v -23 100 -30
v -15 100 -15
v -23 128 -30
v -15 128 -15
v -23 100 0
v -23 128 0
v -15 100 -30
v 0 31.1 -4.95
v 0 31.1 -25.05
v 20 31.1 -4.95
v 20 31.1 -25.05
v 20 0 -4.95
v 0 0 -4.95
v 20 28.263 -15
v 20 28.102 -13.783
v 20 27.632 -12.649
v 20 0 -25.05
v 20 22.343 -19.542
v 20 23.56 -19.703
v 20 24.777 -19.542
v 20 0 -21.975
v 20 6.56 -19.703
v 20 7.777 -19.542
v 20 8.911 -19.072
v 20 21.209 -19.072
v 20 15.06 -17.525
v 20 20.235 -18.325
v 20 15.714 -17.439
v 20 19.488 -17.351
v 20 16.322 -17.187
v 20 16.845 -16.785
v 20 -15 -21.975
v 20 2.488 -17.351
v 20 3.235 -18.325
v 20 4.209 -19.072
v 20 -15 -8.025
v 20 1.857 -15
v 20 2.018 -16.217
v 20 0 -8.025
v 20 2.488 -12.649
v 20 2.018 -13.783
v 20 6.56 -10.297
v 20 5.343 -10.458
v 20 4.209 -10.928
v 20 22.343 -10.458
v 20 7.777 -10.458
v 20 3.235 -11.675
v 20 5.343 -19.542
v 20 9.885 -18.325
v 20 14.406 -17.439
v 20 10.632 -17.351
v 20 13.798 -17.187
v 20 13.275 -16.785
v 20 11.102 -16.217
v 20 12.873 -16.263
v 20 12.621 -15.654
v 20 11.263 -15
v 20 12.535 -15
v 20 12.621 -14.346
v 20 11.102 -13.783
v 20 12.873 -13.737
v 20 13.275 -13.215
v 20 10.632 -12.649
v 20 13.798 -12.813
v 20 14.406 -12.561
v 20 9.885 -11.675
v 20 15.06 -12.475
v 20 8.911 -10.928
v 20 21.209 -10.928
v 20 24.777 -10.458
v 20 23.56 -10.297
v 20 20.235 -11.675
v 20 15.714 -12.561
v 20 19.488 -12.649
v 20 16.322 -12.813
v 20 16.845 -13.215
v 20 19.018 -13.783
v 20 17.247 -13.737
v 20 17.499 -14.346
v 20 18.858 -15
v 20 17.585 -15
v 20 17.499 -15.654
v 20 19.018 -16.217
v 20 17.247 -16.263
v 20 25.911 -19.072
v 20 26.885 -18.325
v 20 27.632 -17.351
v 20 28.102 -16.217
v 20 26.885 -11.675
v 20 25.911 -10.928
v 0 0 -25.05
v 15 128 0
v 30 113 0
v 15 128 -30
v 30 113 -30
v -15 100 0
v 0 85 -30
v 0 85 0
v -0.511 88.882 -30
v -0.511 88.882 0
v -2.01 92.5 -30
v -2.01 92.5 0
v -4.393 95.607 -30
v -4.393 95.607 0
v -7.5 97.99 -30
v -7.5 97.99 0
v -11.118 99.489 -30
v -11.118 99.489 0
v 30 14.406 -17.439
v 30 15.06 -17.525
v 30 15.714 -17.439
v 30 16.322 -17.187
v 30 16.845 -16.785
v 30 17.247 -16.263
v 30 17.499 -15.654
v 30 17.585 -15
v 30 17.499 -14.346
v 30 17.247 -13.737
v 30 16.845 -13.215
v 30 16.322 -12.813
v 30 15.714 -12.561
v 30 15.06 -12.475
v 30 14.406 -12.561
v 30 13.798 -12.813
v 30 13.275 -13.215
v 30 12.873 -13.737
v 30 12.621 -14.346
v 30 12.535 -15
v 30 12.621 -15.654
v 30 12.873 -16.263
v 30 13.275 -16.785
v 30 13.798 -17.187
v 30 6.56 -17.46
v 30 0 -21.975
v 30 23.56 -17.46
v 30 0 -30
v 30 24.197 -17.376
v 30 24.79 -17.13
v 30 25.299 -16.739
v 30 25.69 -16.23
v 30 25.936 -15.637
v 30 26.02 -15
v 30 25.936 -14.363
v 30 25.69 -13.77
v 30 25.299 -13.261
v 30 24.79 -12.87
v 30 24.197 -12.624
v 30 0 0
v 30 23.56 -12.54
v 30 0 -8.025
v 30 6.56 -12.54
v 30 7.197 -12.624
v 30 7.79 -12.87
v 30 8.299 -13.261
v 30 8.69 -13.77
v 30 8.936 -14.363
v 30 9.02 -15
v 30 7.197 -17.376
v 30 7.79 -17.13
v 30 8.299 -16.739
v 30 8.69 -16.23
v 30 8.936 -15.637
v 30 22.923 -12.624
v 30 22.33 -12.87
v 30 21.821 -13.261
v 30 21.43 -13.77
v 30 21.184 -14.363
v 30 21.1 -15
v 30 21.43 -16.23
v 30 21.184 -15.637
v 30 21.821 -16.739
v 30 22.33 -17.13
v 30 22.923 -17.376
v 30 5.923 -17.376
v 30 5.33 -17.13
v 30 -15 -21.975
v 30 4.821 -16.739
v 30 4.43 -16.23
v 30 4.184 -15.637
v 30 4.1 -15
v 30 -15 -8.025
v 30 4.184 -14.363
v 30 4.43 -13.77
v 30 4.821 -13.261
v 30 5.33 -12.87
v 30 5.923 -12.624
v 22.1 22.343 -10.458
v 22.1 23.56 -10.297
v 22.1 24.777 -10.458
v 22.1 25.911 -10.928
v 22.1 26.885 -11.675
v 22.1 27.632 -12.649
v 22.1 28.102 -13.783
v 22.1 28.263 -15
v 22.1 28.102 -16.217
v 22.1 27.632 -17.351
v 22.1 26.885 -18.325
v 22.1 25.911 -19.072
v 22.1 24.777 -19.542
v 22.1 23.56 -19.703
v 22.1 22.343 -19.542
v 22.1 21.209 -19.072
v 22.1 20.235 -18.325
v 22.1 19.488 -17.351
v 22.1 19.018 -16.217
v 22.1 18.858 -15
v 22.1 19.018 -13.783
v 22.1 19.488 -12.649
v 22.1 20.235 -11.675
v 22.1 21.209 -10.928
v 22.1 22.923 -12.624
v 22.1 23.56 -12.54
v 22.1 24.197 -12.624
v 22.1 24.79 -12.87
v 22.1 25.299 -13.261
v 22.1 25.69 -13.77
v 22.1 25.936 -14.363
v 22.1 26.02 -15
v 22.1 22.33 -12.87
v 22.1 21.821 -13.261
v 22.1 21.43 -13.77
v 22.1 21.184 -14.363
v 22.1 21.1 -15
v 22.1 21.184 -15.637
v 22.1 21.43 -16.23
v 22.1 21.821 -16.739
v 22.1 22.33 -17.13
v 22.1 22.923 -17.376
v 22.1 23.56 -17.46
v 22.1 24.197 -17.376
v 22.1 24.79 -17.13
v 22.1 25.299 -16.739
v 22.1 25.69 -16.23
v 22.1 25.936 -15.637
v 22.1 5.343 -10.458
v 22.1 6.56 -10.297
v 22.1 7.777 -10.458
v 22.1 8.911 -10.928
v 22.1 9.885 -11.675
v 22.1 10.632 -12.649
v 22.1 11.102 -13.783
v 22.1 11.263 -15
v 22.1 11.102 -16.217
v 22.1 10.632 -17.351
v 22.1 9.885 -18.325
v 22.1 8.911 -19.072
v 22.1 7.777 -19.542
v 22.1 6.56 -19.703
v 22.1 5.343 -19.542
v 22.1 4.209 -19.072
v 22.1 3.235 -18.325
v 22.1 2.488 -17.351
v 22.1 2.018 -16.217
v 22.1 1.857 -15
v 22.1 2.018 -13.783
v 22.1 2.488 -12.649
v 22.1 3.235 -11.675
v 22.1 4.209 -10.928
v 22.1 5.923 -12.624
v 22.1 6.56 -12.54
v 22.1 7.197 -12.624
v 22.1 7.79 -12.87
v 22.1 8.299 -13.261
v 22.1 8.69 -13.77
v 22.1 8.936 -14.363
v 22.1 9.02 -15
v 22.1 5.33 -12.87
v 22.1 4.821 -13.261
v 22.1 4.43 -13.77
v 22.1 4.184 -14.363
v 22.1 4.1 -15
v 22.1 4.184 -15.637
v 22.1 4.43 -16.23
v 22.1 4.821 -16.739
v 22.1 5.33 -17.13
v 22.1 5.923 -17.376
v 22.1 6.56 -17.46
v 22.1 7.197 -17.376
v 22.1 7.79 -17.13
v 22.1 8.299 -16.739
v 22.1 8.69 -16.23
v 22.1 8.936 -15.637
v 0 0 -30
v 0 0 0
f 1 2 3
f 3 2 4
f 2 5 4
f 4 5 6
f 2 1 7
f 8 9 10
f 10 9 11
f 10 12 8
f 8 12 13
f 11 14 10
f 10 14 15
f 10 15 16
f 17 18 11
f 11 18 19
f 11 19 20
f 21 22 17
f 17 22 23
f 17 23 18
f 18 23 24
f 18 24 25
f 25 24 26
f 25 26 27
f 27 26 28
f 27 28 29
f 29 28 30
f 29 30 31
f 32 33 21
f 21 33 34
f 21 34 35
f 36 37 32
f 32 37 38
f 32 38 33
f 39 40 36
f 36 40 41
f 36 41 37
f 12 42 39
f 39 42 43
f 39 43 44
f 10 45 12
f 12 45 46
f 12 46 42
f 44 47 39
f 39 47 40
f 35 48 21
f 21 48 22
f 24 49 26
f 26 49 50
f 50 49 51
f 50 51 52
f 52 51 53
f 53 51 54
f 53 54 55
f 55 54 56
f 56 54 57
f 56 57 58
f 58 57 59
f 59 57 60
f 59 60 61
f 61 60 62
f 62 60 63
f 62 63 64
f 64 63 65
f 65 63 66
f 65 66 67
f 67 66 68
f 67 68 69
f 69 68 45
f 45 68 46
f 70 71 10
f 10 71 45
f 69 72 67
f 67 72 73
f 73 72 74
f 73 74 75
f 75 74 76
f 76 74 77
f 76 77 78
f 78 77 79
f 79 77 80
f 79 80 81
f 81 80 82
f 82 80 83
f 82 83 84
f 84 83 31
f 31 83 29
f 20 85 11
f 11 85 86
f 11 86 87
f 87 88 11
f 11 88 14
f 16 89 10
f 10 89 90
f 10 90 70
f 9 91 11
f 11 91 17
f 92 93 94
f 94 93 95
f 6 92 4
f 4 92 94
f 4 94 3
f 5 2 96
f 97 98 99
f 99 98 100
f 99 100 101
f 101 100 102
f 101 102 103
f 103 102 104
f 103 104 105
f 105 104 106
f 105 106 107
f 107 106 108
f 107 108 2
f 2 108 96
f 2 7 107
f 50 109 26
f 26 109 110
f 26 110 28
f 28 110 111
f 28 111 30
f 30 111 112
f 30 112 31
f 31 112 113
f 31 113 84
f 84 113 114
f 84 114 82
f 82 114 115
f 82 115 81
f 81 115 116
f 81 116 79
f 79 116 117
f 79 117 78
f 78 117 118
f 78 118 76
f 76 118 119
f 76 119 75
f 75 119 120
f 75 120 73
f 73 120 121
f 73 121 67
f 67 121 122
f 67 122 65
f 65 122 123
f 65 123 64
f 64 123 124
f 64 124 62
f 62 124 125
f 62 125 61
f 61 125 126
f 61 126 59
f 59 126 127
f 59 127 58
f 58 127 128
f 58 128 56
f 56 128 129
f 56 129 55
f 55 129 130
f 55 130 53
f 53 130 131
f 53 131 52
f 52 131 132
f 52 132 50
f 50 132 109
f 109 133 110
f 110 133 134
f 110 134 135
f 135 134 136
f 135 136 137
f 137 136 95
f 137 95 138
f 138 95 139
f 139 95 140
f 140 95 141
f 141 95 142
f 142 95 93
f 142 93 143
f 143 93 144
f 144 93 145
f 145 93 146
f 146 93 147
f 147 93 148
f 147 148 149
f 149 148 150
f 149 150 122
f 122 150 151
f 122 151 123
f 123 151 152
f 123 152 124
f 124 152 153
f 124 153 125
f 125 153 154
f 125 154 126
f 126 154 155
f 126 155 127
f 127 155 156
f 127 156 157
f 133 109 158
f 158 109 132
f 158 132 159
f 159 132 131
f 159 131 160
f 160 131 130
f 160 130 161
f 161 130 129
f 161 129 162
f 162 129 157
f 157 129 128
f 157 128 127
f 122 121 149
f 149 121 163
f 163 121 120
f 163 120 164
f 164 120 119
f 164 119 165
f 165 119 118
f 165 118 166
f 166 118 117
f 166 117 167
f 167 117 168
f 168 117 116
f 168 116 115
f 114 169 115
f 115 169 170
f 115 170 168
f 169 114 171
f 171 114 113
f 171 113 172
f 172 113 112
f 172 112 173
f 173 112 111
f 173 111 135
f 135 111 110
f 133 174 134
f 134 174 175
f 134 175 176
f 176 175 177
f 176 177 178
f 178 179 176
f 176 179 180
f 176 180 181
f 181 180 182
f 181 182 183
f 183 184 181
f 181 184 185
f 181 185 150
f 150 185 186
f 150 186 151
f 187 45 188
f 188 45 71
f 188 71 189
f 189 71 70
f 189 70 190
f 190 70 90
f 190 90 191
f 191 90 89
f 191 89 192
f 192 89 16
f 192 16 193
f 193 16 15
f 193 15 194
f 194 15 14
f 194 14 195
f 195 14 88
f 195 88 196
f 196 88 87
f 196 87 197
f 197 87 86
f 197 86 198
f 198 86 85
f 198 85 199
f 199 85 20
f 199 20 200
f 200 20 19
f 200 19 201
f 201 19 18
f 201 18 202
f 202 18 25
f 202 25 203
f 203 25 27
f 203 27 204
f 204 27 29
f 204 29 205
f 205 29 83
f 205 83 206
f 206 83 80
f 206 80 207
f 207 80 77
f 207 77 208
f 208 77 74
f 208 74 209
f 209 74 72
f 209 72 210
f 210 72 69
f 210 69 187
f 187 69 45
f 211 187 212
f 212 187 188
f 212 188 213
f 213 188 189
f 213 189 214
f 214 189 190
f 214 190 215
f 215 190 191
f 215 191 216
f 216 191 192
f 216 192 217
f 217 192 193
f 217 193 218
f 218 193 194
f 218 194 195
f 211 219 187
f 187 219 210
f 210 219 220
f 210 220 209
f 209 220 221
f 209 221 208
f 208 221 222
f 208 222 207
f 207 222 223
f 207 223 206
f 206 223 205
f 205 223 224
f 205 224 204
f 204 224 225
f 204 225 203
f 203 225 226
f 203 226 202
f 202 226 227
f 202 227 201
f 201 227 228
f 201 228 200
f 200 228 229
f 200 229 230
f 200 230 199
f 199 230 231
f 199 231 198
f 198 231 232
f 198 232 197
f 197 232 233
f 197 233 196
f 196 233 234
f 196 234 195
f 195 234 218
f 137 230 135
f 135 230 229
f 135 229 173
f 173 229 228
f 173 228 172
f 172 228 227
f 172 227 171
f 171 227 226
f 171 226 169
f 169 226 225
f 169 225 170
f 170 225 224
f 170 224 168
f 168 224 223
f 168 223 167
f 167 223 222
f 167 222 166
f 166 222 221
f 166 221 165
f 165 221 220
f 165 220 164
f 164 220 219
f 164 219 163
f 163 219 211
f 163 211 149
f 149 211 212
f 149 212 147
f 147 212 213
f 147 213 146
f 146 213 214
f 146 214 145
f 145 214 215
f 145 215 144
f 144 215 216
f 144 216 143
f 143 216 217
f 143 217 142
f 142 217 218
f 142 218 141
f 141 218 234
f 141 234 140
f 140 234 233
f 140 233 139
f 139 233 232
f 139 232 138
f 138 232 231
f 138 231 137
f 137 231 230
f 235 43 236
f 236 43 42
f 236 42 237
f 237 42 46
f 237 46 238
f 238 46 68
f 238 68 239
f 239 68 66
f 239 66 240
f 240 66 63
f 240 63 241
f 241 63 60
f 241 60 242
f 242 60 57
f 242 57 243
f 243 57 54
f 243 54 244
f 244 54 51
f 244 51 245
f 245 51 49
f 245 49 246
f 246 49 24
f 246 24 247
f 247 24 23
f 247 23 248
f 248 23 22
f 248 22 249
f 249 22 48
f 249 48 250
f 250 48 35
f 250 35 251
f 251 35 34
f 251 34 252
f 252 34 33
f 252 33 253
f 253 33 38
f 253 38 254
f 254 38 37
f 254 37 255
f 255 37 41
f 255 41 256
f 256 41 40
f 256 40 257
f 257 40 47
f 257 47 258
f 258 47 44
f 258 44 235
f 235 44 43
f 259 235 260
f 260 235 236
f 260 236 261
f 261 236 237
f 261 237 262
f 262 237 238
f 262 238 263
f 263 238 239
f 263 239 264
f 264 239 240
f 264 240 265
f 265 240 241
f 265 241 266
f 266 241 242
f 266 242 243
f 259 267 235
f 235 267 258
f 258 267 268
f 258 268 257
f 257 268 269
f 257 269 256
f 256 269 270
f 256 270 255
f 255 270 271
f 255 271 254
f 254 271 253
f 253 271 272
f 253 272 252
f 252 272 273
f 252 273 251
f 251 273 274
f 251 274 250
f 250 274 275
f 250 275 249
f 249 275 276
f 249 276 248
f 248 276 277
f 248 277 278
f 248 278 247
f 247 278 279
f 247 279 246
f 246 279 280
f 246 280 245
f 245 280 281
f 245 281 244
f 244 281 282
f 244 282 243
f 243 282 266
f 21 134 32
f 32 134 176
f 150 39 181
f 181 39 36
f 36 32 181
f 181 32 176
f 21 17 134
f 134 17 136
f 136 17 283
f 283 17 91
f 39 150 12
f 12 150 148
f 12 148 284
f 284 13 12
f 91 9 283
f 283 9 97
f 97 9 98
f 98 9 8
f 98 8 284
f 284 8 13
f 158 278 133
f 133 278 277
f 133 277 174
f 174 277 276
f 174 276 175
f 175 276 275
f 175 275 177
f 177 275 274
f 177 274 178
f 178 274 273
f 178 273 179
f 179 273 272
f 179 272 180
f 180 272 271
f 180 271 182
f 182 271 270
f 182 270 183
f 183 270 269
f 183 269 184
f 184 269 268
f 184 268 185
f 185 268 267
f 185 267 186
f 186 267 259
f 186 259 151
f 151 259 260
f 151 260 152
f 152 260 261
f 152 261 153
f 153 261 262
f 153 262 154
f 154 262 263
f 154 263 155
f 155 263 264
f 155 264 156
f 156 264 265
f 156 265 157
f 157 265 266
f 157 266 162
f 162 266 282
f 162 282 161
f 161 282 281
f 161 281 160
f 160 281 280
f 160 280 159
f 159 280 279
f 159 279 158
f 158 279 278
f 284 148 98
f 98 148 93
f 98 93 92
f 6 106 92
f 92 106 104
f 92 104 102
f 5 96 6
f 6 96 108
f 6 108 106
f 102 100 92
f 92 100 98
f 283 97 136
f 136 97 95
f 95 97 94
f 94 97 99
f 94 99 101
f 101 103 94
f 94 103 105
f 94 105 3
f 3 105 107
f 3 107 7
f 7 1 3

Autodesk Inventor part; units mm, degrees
ref_plane "YZ Plane" through (0, 0, 0) normal (1, 0, 0) x (0, 1, 0)
ref_plane "XZ Plane" through (0, 0, 0) normal (0, 1, 0) x (-1, 0, 0)
ref_plane "XY Plane" through (0, 0, 0) normal (0, 0, 1) x (1, 0, 0)
sketch "Sketch1" plane through (0, 0, 0) normal (0, 0, 1) x (1, 0, 0)
  line L0 (0, 0) -> (25, 0)
  line L1 (25, 0) -> (25, 40)
  line L2 (25, 40) -> (0, 40)
  line L3 (0, 40) -> (0, 0)
  dimension "d1" = 25
  dimension "d2" = 40
  dimension "d3" = 25
extrude "Extrusion1" add sketch "Sketch1" against normal blind 30
sketch "Sketch2" plane through (25, 0, 0) normal (1, 0, 0) x (0, 0, -1)
  line L0 (0, 0) -> (30, 0) projected
  circle A0 centre (15, 6.56) radius 2.46
extrude "Extrusion2" cut sketch "Sketch2" against normal blind 30
sketch "Sketch3" plane through (0, 0, 0) normal (-1, 0, 0) x (0, 0, 1)
  line L0 (0, 0) -> (-30, 0) projected
  line L1 (-25.05, 0) -> (-4.95, 0)
  line L2 (-4.95, 0) -> (-4.95, 33.12)
  line L3 (-4.95, 33.12) -> (-25.05, 33.12)
  line L4 (-25.05, 33.12) -> (-25.05, 0)
  dimension "d11" = 20.1
extrude "Extrusion3" cut sketch "Sketch3" against normal blind 20
sketch "Sketch4" plane through (0, 0, 0) normal (0, -1, 0) x (1, 0, 0)
  line L0 (20, -4.95) -> (20, -25.05) projected
  line L1 (20, -15) -> (25, -15)
  line L2 (25, 0) -> (25, -30) projected
  line L3 (20, -8.025) -> (25, -8.025)
  line L4 (25, -8.025) -> (25, -21.975)
  line L5 (25, -21.975) -> (20, -21.975)
  line L6 (20, -21.975) -> (20, -8.025)
  line L7 (20, -8.025) -> (25, -21.975) construction
  line L8 (25, -8.025) -> (20, -21.975) construction
  line L9 (25, -12.54) -> (25, -17.46) projected
  point P0 (0, 0)
  point P1 (22.5, -15)
  dimension "d14" = 13.95
extrude "Extrusion4" add sketch "Sketch4" along normal blind 15
sketch "Sketch5" plane through (20, 0, 0) normal (-1, 0, 0) x (0, 0, 1)
  circle A0 centre (-15, 6.56) radius 2.46 projected
  circle A1 centre (-15, 6.56) radius 4.7025
  circle A2 centre (-15, 6.56) radius 2.46 projected
  circle A3 centre (-15, 6.56) radius 2.46
  point P0 (0, 0)
  dimension "d17" = 9.405
extrude "Extrusion5" cut sketch "Sketch5" against normal blind 2.1
sketch "Sketch6" plane through (25, 0, 0) normal (1, 0, 0) x (0, 0, -1)
  circle A0 centre (15, 6.56) radius 4.7025 projected
  line L0 (15, 6.56) -> (15, 23.56)
  circle A1 centre (15, 23.56) radius 2.46
  point P0 (0, 0)
  dimension "d20" = 17
  dimension "d21" = 4.92
extrude "Extrusion6" cut sketch "Sketch6" against normal blind 10 contours A1
sketch "Sketch7" plane through (20, 0, 0) normal (-1, 0, 0) x (0, 0, 1)
  circle A0 centre (-15, 23.56) radius 2.46 projected
  circle A1 centre (-15, 23.56) radius 4.7025
  point P0 (0, 0)
  dimension "d24" = 9.405
extrude "Extrusion7" cut sketch "Sketch7" against normal blind 2.1
sketch "Sketch9" plane through (25, 0, 0) normal (1, 0, 0) x (0, 0, -1)
  circle A0 centre (15, 6.56) radius 2.46 projected
  circle A1 centre (15, 6.56) radius 2.46
  circle A2 centre (15, 23.56) radius 2.46 projected
  circle A3 centre (15, 23.56) radius 2.46
  line L0 (30, 40) -> (30, 0) projected
  line L1 (30, 0) -> (30, 40)
  line L2 (30, 40) -> (0, 40)
  line L3 (0, 40) -> (0, 0)
  line L4 (0, 0) -> (8.025, 0) projected
  line L5 (21.975, 0) -> (21.975, -15)
  line L6 (21.975, -15) -> (8.025, -15)
  line L7 (8.025, -15) -> (8.025, 0)
  line L8 (0, 0) -> (8.025, 0)
  line L9 (21.975, 0) -> (30, 0)
extrude "Extrusion8" add sketch "Sketch9" along normal blind 5
sketch "Sketch10" plane through (0, 40, 0) normal (0, 1, 0) x (1, 0, 0)
  line L0 (0, 30) -> (30, 30) projected
  line L1 (30, 0) -> (0, 0) projected
  line L2 (0, 30) -> (30, 30)
  line L3 (30, 30) -> (30, 0)
  line L4 (30, 0) -> (0, 0)
  line L5 (0, 0) -> (0, 30)
extrude "Extrusion9" add sketch "Sketch10" along normal blind 30
sketch "Sketch12" plane through (30, 0, 0) normal (1, 0, 0) x (0, 0, -1)
  circle A0 centre (15, 6.56) radius 2.46 projected
  line L0 (15, 6.56) -> (15, 15.06)
  circle A1 centre (15, 15.06) radius 2.525
  point P0 (0, 0)
  dimension "d31" = 8.5
  dimension "d33" = 5.05
extrude "Extrusion10" cut sketch "Sketch12" against normal blind 30 contours A1
sketch "Sketch14" plane through (0, 0, 0) normal (0, 0, 1) x (1, 0, 0)
  line L0 (30, 70) -> (0, 70) projected
  line L1 (0, 70) -> (0, 85)
  line L2 (-15, 100) -> (-23, 100)
  line L3 (30, 0) -> (30, 70) projected
  line L4 (30, 113) -> (30, 70)
  arc A0 (0, 85) -> (-15, 100) centre (-15, 85) ccw
  line L5 (30, 105) -> (30, 100)
  line L6 (-23, 128) -> (15, 128)
  line L7 (30, 113) -> (15, 128)
  line L8 (-23, 128) -> (-23, 100)
  point P0 (0, 0)
  point P1 (0, 100)
  dimension "d47" = 30
  dimension "d54" = 15
  dimension "d69" = 28
extrude "Extrusion12" add sketch "Sketch14" against normal blind 30
sketch "Sketch15" plane through (0, 0, -25.05) normal (-1, 0, 0) x (0, 0, 1)
  line L0 (0, 33.12) -> (20.1, 33.12) projected
  line L1 (20.1, 33.12) -> (20.1, 0) projected
  line L2 (0, 33.12) -> (20.1, 33.12)
  line L3 (20.1, 33.12) -> (20.1, 31.1)
  line L4 (20.1, 31.1) -> (0, 31.1)
  line L5 (0, 31.1) -> (0, 33.12)
  point P0 (25.05, 0)
  dimension "d57" = 2.02
extrude "Extrusion13" add sketch "Sketch15" against normal blind 20
sketch "Sketch25" plane through (-23, 128, 0) normal (0, 1, 0) x (1, 0, 0)
  line L0 (0, 0) -> (0, 30) projected
  line L1 (8, 15) -> (0, 0)
  line L2 (8, 15) -> (0, 30)
  line L3 (8, 30) -> (0, 30) projected
  line L4 (0, 30) -> (0, 0)
  point P0 (23, 0)
extrude "Extrusion17" cut sketch "Sketch25" against normal through all
properties part number "orien_b_25mm"
